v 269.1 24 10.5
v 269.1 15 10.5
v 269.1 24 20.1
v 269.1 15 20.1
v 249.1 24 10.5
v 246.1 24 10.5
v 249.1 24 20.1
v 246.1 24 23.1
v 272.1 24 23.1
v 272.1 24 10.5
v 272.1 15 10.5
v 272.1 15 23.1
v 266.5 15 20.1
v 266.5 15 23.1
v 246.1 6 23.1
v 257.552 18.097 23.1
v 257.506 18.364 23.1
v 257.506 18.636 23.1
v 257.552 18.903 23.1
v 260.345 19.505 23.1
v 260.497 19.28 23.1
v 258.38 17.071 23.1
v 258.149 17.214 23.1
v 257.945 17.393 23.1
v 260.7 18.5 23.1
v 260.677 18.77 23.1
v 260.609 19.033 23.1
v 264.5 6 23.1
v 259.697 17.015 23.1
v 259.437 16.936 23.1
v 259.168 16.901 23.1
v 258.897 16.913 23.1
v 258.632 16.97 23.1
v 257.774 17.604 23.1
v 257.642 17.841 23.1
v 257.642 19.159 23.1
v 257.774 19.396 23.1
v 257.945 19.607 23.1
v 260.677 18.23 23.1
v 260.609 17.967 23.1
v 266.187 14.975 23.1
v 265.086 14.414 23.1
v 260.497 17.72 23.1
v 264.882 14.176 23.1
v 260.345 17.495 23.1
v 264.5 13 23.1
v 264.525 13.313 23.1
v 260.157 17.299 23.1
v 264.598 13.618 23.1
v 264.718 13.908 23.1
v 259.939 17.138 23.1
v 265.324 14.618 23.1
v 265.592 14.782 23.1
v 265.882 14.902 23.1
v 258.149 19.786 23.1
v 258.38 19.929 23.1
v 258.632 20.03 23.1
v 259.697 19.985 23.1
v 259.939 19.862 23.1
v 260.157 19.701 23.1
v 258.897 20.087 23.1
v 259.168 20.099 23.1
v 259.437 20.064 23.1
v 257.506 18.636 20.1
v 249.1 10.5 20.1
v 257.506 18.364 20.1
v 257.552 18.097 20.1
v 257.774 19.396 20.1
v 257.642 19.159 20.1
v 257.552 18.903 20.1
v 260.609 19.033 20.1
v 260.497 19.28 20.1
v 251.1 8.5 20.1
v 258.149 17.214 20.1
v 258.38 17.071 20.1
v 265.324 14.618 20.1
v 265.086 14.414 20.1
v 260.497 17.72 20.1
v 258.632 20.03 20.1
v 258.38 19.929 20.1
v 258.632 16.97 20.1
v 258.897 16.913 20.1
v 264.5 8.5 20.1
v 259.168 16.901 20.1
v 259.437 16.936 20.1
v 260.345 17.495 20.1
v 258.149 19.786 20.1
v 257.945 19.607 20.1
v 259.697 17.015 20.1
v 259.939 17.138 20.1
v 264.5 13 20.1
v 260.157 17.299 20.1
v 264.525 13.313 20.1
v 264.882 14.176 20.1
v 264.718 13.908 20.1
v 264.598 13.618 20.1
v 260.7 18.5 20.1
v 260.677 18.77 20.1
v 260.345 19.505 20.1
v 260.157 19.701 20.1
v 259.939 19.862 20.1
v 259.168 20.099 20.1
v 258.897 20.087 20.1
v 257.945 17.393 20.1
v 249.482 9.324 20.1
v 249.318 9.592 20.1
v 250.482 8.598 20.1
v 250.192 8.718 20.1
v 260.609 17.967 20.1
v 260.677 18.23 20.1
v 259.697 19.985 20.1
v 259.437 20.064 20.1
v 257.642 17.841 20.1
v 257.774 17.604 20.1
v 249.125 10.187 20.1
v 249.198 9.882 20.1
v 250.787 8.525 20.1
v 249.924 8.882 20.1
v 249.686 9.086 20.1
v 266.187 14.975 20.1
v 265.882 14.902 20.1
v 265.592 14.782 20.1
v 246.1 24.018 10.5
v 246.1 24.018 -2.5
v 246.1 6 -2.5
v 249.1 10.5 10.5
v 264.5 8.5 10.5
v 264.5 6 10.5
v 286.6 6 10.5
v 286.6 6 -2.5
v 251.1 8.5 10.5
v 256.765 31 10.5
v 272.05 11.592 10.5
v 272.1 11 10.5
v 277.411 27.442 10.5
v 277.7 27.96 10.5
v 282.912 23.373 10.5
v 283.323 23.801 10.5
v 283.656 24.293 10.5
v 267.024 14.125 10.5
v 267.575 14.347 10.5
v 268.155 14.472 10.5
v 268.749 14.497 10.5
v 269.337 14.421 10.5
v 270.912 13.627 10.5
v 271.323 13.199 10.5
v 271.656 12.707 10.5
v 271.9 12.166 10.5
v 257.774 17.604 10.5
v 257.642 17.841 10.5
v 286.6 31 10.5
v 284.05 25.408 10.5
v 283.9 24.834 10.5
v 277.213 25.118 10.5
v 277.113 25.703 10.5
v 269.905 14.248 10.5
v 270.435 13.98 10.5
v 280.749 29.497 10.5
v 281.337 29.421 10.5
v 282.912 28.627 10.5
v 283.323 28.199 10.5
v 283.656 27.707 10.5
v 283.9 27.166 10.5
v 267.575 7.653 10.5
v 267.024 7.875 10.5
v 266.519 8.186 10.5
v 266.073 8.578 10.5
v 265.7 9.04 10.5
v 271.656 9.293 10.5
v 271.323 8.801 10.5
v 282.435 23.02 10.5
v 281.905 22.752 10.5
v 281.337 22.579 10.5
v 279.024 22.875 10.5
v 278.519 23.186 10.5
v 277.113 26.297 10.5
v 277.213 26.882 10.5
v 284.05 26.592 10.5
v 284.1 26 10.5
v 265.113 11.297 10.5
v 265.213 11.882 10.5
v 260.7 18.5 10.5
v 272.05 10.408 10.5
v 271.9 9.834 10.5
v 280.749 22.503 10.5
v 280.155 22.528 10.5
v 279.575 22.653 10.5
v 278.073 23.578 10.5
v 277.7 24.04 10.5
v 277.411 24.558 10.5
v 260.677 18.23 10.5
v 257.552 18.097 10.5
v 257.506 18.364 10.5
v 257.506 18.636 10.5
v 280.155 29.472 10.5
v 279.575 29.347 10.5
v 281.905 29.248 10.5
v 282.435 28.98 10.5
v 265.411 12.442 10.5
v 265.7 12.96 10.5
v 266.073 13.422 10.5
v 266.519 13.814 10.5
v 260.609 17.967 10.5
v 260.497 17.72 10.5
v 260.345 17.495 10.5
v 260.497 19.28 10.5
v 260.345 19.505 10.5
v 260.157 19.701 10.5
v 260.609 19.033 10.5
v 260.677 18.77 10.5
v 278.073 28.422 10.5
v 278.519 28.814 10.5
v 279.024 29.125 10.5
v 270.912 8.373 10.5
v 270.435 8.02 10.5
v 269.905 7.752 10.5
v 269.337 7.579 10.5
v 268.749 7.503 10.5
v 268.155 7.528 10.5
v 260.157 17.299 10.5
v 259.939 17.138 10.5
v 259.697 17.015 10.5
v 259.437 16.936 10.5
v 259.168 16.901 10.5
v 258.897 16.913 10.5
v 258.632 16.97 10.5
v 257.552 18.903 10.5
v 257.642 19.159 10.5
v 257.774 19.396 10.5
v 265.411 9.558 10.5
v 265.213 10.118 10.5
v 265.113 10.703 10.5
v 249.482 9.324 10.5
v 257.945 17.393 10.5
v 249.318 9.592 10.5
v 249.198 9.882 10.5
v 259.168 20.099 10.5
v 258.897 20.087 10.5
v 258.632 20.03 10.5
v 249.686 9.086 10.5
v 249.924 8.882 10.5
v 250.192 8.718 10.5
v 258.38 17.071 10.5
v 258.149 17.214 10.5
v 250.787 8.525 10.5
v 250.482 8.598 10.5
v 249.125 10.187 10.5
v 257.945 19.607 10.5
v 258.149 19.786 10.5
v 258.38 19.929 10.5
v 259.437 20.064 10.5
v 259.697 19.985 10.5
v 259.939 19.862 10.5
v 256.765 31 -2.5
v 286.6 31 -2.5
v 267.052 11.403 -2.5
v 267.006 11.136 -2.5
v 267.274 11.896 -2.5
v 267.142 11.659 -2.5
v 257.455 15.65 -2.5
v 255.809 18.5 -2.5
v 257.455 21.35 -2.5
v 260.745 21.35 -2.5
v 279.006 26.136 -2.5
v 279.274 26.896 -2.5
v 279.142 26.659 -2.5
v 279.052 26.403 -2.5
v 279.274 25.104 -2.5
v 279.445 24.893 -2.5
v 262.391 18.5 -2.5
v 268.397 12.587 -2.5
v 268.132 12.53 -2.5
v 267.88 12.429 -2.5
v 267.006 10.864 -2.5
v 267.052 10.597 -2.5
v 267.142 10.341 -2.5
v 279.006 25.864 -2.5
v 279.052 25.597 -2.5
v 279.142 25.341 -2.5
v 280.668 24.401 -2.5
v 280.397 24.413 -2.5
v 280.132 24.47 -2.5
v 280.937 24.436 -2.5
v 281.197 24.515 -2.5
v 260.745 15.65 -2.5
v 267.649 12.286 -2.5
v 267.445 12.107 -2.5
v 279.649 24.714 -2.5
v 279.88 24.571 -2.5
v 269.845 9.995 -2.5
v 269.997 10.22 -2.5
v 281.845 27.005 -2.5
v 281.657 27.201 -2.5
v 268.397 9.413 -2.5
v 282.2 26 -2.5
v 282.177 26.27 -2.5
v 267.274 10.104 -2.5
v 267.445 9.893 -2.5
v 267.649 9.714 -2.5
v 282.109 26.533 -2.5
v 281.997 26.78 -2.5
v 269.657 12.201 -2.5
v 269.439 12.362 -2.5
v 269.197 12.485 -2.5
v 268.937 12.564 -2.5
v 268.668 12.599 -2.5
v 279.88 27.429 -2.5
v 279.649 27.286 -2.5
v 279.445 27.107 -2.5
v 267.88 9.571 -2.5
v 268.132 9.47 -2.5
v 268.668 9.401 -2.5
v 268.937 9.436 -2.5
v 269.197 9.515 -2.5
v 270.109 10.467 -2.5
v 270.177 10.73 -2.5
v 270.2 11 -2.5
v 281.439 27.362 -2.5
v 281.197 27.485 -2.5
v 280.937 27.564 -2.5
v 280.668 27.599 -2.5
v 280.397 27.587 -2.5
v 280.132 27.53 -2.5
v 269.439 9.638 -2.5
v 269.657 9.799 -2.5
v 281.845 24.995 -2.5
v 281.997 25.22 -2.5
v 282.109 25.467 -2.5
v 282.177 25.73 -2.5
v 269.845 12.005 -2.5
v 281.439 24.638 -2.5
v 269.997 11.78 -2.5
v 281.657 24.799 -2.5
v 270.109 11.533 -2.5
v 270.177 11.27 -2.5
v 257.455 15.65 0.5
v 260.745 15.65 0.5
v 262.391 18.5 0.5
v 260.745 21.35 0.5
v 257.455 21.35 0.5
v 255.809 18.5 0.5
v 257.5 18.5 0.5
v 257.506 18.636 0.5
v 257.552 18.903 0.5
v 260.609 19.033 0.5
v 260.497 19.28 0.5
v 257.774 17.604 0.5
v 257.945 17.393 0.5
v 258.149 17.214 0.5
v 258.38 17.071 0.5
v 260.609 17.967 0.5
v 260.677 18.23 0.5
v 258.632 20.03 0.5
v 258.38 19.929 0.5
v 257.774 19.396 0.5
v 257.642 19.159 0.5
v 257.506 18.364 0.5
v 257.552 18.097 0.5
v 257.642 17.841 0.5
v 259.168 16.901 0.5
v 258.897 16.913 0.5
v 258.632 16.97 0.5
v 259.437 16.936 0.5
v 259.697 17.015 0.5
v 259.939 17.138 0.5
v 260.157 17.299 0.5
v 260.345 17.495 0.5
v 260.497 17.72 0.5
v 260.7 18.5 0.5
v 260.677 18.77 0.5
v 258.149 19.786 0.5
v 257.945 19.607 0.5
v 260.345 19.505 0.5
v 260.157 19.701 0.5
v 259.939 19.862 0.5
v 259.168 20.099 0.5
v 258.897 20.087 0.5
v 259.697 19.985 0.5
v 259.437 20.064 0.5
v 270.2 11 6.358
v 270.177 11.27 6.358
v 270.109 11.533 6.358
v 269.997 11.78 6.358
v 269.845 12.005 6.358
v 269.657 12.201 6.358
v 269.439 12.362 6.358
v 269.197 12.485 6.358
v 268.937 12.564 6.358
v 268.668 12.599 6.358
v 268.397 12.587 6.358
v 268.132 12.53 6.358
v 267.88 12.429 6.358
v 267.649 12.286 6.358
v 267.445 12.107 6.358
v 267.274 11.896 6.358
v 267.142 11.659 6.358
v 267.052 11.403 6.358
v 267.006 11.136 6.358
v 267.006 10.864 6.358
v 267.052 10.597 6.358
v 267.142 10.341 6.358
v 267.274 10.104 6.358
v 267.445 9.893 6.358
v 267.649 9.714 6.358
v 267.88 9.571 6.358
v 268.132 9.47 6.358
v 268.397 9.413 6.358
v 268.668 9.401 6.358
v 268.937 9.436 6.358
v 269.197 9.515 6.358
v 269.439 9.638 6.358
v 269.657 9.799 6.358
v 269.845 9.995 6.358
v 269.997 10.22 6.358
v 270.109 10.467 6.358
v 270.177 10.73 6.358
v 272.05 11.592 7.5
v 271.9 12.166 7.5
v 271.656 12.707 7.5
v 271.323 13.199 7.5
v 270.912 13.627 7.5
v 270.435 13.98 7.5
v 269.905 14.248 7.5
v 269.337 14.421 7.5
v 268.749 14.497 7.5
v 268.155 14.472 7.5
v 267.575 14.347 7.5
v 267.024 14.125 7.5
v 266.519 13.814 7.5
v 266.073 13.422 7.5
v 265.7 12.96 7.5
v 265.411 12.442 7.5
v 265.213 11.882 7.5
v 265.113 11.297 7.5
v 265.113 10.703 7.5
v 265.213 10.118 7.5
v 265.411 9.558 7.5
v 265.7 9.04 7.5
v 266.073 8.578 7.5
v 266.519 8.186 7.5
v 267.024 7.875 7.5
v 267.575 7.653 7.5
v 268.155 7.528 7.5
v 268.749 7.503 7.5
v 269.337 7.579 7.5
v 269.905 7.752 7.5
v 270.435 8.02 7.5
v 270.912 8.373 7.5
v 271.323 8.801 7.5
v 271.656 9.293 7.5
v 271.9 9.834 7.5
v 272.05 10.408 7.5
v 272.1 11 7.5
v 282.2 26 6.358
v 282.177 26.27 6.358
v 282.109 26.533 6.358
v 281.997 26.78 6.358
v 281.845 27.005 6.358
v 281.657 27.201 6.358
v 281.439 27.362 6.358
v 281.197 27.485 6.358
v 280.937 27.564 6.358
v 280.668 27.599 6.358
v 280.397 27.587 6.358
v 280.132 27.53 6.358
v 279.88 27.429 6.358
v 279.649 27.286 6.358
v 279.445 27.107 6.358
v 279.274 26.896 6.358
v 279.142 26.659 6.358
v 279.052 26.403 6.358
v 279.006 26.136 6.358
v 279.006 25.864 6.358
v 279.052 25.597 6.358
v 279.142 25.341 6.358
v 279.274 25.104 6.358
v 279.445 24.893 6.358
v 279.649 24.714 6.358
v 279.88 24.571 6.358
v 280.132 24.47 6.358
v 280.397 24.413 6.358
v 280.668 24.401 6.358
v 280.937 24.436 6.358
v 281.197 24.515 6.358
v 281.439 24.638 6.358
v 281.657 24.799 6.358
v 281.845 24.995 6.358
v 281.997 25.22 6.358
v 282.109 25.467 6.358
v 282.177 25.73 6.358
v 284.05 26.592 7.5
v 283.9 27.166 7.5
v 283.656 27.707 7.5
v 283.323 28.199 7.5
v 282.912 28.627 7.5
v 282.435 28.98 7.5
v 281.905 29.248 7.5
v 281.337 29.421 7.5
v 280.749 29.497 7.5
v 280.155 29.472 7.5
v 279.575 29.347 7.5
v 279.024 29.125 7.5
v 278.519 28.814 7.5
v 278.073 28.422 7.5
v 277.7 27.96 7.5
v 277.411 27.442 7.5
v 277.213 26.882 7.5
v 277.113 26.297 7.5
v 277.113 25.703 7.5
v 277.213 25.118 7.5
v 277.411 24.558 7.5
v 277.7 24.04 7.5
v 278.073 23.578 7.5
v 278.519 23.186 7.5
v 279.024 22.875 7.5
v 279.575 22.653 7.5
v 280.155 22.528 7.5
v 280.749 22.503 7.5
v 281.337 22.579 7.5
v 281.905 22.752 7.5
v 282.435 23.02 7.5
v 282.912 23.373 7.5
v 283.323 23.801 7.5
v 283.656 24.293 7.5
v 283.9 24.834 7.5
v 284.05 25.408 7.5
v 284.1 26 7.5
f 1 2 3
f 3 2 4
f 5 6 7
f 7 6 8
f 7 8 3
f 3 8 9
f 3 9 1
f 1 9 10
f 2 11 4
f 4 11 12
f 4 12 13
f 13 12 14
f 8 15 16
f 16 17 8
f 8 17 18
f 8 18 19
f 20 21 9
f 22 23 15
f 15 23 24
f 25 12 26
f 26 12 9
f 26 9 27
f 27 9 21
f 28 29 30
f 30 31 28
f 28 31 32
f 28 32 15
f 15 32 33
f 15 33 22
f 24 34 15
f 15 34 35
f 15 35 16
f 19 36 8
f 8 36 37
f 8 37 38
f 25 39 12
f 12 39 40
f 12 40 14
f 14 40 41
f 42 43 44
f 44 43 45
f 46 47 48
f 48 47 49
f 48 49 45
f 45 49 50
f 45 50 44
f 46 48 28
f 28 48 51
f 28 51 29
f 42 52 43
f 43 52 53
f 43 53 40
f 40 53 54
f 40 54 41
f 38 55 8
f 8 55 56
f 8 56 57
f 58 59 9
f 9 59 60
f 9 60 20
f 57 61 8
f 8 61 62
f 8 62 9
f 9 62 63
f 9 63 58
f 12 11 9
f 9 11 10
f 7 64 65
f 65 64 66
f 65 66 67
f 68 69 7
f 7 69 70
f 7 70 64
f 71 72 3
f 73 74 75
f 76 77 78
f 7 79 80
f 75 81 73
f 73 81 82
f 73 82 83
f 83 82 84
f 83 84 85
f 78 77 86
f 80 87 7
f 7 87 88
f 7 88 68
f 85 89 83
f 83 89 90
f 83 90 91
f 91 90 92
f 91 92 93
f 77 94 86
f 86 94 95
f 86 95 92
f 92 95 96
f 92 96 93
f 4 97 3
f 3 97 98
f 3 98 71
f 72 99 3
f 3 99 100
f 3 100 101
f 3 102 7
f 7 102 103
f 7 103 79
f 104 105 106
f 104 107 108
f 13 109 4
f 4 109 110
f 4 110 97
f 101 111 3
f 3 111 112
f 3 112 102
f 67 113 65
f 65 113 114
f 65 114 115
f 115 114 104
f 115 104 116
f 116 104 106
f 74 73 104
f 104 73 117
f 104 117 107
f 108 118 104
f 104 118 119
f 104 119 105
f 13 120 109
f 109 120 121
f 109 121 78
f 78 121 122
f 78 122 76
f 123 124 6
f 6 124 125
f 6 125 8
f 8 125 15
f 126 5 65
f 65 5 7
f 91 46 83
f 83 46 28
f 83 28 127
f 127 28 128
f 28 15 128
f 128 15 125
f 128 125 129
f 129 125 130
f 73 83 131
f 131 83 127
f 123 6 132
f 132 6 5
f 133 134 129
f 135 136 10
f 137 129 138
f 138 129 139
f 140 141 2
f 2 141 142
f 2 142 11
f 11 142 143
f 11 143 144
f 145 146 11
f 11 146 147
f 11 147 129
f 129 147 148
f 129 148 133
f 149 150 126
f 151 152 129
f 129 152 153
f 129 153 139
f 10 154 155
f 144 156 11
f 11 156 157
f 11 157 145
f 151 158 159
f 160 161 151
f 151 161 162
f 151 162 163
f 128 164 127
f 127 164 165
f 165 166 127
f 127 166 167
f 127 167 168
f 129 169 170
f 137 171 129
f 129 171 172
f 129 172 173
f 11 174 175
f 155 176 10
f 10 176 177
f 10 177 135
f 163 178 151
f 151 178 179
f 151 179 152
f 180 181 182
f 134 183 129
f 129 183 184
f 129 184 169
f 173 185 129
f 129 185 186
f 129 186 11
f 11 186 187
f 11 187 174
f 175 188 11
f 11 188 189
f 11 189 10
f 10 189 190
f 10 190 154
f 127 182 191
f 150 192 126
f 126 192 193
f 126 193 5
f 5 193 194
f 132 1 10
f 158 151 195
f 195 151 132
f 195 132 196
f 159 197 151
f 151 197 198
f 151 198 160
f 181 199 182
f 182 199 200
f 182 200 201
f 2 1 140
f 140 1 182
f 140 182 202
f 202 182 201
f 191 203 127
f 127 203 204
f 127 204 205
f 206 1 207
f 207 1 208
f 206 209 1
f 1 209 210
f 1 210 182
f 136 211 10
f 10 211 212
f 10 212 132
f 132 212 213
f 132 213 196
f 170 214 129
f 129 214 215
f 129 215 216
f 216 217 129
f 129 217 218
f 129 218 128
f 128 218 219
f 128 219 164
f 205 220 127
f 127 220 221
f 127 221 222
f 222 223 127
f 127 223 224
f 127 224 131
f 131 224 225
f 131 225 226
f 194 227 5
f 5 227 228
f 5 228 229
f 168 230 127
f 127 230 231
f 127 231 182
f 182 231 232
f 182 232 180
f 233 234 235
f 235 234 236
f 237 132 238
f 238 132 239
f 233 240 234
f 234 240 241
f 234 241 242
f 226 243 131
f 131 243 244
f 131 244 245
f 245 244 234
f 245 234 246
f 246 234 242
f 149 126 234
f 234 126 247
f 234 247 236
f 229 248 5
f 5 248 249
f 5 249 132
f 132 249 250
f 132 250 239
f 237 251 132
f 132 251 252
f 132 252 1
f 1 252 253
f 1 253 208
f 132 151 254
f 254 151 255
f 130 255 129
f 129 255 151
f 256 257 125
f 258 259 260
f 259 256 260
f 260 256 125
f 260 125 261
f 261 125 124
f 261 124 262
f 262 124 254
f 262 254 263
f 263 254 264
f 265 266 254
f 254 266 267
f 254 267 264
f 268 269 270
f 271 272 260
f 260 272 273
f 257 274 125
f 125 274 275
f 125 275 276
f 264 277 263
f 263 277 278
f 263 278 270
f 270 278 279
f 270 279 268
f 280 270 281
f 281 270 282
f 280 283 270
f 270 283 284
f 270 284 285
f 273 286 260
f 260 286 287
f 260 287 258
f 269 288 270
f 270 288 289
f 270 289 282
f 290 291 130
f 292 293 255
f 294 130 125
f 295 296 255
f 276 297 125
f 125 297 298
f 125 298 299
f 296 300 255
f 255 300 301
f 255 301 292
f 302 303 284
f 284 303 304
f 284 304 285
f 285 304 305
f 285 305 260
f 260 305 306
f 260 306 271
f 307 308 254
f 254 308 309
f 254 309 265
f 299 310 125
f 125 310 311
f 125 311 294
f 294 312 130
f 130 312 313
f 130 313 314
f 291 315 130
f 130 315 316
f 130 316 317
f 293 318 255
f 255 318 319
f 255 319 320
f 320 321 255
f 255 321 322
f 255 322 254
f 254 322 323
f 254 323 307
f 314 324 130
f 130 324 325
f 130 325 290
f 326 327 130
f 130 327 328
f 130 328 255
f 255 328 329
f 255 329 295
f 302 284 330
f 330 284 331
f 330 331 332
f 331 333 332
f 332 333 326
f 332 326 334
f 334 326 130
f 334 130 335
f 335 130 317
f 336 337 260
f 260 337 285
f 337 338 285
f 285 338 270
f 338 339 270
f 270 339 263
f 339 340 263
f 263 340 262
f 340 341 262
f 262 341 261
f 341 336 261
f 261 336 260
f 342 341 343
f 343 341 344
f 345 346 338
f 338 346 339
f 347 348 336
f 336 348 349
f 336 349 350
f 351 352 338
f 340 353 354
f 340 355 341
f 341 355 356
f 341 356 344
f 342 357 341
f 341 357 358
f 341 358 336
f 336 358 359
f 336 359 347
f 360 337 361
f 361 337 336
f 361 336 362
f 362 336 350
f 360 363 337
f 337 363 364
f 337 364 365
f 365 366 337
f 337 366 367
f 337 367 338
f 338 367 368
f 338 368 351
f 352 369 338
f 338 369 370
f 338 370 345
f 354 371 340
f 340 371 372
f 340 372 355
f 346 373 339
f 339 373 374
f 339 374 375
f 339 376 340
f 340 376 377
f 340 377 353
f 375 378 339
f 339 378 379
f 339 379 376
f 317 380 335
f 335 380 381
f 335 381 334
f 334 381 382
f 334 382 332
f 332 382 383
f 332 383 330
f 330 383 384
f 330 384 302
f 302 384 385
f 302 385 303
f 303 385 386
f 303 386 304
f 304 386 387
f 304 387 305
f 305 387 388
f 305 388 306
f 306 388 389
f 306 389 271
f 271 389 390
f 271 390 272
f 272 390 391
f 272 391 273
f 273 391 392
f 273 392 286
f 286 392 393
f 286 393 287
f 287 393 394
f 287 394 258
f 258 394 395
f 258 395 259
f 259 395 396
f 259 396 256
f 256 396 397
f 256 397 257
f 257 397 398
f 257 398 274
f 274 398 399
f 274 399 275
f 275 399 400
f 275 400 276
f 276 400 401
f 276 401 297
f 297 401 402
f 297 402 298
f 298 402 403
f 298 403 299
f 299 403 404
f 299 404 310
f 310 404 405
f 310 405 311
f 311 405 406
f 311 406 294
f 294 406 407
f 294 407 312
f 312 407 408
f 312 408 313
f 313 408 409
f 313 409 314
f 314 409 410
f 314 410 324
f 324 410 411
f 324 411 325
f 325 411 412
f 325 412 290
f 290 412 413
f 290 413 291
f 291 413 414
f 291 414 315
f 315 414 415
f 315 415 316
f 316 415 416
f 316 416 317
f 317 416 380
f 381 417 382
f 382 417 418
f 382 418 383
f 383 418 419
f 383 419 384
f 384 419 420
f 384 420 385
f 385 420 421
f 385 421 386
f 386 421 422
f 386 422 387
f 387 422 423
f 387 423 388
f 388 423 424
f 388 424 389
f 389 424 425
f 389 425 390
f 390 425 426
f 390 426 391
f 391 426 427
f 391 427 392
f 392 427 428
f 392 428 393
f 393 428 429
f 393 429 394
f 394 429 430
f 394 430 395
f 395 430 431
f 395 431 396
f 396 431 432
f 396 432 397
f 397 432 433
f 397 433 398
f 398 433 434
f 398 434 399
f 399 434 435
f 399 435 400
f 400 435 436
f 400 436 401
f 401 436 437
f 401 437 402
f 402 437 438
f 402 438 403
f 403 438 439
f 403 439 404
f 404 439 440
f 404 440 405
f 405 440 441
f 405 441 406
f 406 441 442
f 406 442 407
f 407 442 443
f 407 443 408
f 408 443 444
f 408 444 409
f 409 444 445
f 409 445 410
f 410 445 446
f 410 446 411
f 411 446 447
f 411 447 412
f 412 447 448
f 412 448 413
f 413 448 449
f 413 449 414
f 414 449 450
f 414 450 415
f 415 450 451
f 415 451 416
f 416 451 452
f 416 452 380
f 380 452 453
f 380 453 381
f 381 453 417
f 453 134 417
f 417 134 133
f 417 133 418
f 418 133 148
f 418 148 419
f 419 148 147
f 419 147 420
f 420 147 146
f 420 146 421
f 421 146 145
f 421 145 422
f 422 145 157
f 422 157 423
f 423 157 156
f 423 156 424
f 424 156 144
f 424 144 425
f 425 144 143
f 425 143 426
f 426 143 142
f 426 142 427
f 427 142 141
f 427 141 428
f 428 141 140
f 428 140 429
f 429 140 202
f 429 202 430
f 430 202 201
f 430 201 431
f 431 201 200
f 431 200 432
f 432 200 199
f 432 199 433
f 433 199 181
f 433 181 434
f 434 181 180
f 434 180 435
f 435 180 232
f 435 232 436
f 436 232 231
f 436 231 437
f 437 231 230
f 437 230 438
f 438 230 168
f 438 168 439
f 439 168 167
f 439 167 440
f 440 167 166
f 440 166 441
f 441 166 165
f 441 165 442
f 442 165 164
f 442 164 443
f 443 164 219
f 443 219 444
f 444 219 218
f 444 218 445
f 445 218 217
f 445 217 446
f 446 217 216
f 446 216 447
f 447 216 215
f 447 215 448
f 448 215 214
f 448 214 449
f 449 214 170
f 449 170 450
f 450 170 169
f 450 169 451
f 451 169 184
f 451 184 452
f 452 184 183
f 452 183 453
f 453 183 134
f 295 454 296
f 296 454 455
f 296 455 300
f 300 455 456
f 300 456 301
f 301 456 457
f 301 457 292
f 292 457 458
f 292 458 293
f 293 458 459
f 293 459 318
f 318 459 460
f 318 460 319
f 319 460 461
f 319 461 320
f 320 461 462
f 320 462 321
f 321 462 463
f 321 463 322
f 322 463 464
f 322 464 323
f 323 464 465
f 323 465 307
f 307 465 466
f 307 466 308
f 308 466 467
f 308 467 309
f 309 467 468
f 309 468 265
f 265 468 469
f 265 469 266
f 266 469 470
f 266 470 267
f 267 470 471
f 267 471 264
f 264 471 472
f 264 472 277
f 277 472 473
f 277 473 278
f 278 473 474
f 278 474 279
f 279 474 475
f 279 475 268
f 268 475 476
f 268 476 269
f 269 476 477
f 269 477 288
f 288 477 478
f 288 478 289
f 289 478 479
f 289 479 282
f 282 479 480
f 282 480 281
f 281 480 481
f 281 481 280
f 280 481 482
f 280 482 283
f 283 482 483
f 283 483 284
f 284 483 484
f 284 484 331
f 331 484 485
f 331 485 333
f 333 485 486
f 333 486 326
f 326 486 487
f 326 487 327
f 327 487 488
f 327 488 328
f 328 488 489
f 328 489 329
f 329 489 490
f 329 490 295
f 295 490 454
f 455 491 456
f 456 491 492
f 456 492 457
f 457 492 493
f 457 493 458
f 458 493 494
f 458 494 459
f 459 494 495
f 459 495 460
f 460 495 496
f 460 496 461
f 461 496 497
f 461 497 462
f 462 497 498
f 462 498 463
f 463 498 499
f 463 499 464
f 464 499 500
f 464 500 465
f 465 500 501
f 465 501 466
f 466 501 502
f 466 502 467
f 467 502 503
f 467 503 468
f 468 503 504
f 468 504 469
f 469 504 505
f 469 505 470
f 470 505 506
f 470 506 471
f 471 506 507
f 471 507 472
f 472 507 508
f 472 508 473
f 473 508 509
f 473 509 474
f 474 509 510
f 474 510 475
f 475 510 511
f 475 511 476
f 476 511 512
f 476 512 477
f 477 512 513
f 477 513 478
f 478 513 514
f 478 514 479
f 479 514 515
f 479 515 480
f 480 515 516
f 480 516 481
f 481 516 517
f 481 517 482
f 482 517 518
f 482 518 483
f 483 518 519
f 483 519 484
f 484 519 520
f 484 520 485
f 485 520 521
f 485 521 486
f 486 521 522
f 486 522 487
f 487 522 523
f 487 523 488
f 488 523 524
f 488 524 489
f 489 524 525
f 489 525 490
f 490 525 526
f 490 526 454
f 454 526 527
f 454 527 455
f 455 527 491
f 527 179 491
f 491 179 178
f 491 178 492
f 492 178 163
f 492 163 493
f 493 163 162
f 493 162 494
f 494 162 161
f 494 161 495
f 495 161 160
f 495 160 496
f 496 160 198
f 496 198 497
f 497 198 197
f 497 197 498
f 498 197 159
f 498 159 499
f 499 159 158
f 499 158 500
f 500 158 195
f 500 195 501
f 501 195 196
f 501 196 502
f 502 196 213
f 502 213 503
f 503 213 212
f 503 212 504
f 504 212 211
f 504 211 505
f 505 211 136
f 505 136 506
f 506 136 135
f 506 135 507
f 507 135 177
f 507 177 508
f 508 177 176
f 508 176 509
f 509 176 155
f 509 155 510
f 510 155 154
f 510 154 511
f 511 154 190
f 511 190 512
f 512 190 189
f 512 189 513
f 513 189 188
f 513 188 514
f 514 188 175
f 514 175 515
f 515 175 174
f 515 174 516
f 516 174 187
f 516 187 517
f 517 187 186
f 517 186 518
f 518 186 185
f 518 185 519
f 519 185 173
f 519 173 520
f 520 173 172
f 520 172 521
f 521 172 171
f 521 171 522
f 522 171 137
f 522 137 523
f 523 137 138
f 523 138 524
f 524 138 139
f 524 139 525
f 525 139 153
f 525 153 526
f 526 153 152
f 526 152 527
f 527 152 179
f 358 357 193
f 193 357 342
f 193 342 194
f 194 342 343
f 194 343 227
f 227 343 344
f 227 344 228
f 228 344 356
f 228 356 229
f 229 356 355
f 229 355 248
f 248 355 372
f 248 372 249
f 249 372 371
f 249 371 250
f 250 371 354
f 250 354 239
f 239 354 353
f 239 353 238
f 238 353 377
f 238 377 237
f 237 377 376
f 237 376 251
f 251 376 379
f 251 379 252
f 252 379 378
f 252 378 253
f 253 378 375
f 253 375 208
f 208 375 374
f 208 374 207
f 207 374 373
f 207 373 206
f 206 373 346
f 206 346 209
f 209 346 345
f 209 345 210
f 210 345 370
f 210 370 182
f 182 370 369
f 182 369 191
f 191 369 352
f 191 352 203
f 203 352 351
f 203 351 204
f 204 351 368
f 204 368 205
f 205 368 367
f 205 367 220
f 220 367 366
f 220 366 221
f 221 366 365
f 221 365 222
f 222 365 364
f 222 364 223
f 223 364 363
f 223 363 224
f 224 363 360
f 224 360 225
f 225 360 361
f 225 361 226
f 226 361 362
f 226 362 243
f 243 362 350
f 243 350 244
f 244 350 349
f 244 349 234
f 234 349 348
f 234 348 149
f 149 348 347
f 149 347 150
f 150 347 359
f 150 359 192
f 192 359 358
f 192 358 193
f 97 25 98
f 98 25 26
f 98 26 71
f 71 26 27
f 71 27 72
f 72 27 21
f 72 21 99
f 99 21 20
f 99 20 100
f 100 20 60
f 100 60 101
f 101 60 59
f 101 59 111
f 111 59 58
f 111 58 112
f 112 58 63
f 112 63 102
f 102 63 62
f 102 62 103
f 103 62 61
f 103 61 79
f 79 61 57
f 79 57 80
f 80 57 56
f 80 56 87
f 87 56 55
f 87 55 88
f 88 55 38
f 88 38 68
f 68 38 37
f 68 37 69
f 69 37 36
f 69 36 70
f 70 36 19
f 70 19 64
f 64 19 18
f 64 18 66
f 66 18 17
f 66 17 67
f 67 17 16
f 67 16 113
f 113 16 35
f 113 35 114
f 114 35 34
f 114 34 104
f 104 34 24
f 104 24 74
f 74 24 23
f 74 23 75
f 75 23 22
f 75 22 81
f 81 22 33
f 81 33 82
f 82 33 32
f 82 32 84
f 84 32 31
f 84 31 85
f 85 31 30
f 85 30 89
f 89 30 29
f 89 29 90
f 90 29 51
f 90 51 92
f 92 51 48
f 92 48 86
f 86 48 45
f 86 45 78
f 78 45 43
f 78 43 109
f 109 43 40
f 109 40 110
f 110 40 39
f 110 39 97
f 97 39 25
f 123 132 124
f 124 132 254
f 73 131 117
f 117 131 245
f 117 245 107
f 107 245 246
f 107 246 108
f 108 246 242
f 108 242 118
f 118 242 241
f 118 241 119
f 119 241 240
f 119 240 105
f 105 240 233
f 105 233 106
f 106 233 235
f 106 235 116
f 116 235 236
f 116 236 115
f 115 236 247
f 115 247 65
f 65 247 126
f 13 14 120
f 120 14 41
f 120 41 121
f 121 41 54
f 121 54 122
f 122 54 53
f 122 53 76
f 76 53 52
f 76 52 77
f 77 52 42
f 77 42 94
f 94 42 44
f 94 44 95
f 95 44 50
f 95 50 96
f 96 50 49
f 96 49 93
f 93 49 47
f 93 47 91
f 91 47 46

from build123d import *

# Parameters (mm, degrees)
SKETCH_1_W                  = 12.6
SKETCH_1_H                  = 9
EXTRUDE_1_DEPTH             = 3
SKETCH_2_W                  = 3
SKETCH_2_H                  = 9
EXTRUDE_2_DEPTH             = 20
SKETCH_3_W                  = 12.6
SKETCH_3_H                  = 9
EXTRUDE_3_DEPTH             = 3
EXTRUDE_4_DEPTH             = 6.5
SKETCH_5_W                  = 18.4
SKETCH_5_H                  = 12.6
EXTRUDE_5_DEPTH             = 2.5
SKETCH_6_W                  = 40.5
SKETCH_6_H                  = 25
EXTRUDE_6_DEPTH             = 13
CUT_EXTRUDE_1_DEPTH         = 3
HOLE_WIZARD_M31_AT_2_COUNT  = 2
HOLE_WIZARD_M31_AT_2_PITCH  = 19.209372712
SKETCH_10_W                 = 1.6
SKETCH_10_H                 = 13
HOLE_WIZARD_3_2_3_2_2_D     = 3.2
HOLE_WIZARD_3_2_3_2_2_DEPTH = 25.6
CHAMFER_1_SIZE              = 6.981980506
CHAMFER_1_SIZE2             = 10.66515139
FILLET_1_R                  = 2


with BuildPart() as part:
    # Эскиз1 → Бобышка-Вытянуть1 (new body)
    with BuildSketch(Plane(origin=(272.1, 0, 0), x_dir=(0, 0, -1), z_dir=(1, 0, 0))):
        with Locations((-16.8, 19.5)):
            Rectangle(SKETCH_1_W, SKETCH_1_H)
    extrude(amount=-EXTRUDE_1_DEPTH)

    # Эскиз2 → Бобышка-Вытянуть2 (add)
    with BuildSketch(Plane.ZY.offset(-269.1)):
        with Locations((21.6, 19.5)):
            Rectangle(SKETCH_2_W, SKETCH_2_H)
    extrude(amount=EXTRUDE_2_DEPTH)

    # Эскиз3 → Бобышка-Вытянуть3 (add)
    with BuildSketch(Plane.ZY.offset(-249.1)):
        with Locations((16.8, 19.5)):
            Rectangle(SKETCH_3_W, SKETCH_3_H)
    extrude(amount=EXTRUDE_3_DEPTH)

    # Эскиз4 → Бобышка-Вытянуть4 (add)
    with BuildSketch(Plane.XZ.offset(-15)):
        Polygon((264.5, 23.1), (264.5, 20.1), (249.1, 20.1), (249.1, 10.5), (246.1, 10.5), (246.1, 23.1), align=None)
    extrude(amount=EXTRUDE_4_DEPTH)

    # Эскиз5 → Бобышка-Вытянуть5 (add)
    with BuildSketch(Plane.XZ.offset(-8.5)):
        with Locations((255.3, 16.8)):
            Rectangle(SKETCH_5_W, SKETCH_5_H)
    extrude(amount=EXTRUDE_5_DEPTH)

    # Эскиз6 → Бобышка-Вытянуть6 (add)
    with BuildSketch(Plane(origin=(0, 0, 10.5), x_dir=(-1, 0, 0), z_dir=(0, 0, -1))):
        with Locations((-266.35, 18.5)):
            Rectangle(SKETCH_6_W, SKETCH_6_H)
    extrude(amount=EXTRUDE_6_DEPTH)

    # Эскиз7 → Вырез-Вытянуть1 (cut)
    with BuildSketch(Plane(origin=(0, 0, -2.5), x_dir=(-1, 0, 0), z_dir=(0, 0, -1))):
        Polygon((-257.454551733, 15.65), (-255.809103466, 18.5), (-257.454551733, 21.35), (-260.745448267, 21.35), (-262.390896534, 18.5), (-260.745448267, 15.65), align=None)
    extrude(amount=-CUT_EXTRUDE_1_DEPTH, mode=Mode.SUBTRACT)

    # Эскиз8 → Зенковка для  винта с плоской головкой M31 (revolve, cut)
    with BuildSketch(Plane(origin=(280.6, 26, 10.5), x_dir=(0, -1, 0), z_dir=(1, 0, 0))):
        Polygon((0, 0), (0, 13), (1.6, 13), (1.6, 4.141635176), (3.5, 3), (3.5, 0), align=None)
    hole_wizard_m31 = revolve(axis=Axis((280.6, 26, 16.85), (0, 0, -1)), mode=Mode.SUBTRACT)

    # Зенковка для  винта с плоской головкой M31 at 2: Зенковка для  винта с плоской головкой M31 ×2
    with Locations(*[Vector(-0.6246950475544251, -0.7808688094430297, 0) * (i * HOLE_WIZARD_M31_AT_2_PITCH) for i in range(1, HOLE_WIZARD_M31_AT_2_COUNT)]):
        add(hole_wizard_m31, mode=Mode.SUBTRACT)

    # Эскиз10 → Диаметр отверстия Ø3.2 (3.2)1 (revolve, cut)
    with BuildSketch(Plane(origin=(259.1, 18.5, 10.5), x_dir=(0, -1, 0), z_dir=(1, 0, 0))):
        with Locations((0.8, 6.5)):
            Rectangle(SKETCH_10_W, SKETCH_10_H)
    revolve(axis=Axis((259.1, 18.5, 16.85), (0, 0, -1)), mode=Mode.SUBTRACT)

    # Диаметр отверстия Ø3.2 (3.2)2
    with Locations(Plane.XY.offset(23.1)):
        with Locations((259.1, 18.5)):
            Hole(HOLE_WIZARD_3_2_3_2_2_D / 2, depth=HOLE_WIZARD_3_2_3_2_2_DEPTH)

    # Фаска1
    chamfer_1_edges = [part.edges().sort_by_distance(p)[0] for p in [
        (246.1, 31, 4),
    ]]
    chamfer_1_side = [part.faces().sort_by_distance(p)[0] for p in [
        (246.1, 17.061435303, 9.261036607),
    ]]
    chamfer(chamfer_1_edges, length=CHAMFER_1_SIZE, length2=CHAMFER_1_SIZE2, reference=chamfer_1_side[0])

    # Скругление1
    fillet_1_edges = [part.edges().sort_by_distance(p)[0] for p in [
        (264.5, 15, 21.6),
        (249.1, 8.5, 15.3),
    ]]
    fillet(fillet_1_edges, radius=FILLET_1_R)


solid = part.part
